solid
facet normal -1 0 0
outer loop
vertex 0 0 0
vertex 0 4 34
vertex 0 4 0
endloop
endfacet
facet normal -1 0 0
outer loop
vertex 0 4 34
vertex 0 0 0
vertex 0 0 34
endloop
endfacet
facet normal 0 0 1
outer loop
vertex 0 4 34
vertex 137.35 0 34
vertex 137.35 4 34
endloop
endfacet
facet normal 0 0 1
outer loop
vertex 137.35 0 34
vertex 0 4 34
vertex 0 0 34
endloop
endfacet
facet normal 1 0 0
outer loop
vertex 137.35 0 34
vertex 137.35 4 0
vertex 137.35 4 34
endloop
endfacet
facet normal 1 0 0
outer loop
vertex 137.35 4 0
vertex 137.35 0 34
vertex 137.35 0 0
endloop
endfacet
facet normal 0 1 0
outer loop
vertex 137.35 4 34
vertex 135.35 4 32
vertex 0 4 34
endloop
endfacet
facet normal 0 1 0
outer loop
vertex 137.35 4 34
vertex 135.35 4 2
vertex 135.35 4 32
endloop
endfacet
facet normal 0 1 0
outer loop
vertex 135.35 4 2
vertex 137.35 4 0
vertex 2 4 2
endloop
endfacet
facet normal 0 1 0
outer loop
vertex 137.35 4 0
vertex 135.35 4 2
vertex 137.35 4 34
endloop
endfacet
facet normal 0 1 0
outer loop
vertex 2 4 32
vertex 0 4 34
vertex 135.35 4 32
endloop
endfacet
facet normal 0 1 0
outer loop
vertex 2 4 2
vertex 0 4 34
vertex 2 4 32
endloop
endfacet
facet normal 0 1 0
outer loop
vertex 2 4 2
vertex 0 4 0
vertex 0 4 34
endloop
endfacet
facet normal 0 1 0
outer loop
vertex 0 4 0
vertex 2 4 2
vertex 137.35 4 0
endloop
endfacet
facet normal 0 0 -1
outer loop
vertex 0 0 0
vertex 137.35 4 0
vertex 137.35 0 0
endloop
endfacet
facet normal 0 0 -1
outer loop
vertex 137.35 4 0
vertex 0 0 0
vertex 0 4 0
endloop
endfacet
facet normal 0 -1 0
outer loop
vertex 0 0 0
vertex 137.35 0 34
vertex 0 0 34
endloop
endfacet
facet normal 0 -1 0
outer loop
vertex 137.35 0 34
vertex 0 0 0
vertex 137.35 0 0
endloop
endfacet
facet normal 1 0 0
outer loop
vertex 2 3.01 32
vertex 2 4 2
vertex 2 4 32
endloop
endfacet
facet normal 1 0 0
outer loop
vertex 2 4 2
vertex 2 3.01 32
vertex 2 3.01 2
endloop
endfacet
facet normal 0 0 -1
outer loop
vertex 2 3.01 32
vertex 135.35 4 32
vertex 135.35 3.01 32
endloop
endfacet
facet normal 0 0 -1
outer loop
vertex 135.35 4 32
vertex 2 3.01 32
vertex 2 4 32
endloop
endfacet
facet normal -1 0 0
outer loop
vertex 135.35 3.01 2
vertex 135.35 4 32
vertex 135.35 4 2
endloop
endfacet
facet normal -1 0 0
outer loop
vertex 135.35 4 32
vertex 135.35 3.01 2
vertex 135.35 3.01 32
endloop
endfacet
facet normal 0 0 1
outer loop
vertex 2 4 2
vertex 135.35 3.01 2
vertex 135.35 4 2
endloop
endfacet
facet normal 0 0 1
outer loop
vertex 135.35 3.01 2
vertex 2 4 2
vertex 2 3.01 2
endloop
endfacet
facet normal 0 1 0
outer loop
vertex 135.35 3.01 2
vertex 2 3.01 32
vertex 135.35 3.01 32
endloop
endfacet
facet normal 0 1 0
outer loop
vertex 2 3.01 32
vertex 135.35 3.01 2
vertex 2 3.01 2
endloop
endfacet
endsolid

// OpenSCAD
// Helper for OpenSCAD
_DELTA = 0.01;

// Definitions for Eurorack dimensions
ONE_HP = 25.4*0.2;
ONE_U  = 1.75*25.4;

// Maximal dimensions of the outside of the case body
OUTER_X = 3*ONE_U;
OUTER_Y = 24*ONE_HP;
OUTER_Z = 30;
// The amount by which the side overlaps the main body
SIDE_OVERLAP = 2;
// The amount by which the main body is inset into the side
SIDE_INSET = 1;

WALL_THICKNESS = 4;

difference() {
    cube([OUTER_X + 2*SIDE_OVERLAP, WALL_THICKNESS, OUTER_Z + 2*SIDE_OVERLAP]);
    translate([SIDE_OVERLAP, WALL_THICKNESS - SIDE_INSET + _DELTA, SIDE_OVERLAP])
        cube([OUTER_X, SIDE_INSET, OUTER_Z]);
}
